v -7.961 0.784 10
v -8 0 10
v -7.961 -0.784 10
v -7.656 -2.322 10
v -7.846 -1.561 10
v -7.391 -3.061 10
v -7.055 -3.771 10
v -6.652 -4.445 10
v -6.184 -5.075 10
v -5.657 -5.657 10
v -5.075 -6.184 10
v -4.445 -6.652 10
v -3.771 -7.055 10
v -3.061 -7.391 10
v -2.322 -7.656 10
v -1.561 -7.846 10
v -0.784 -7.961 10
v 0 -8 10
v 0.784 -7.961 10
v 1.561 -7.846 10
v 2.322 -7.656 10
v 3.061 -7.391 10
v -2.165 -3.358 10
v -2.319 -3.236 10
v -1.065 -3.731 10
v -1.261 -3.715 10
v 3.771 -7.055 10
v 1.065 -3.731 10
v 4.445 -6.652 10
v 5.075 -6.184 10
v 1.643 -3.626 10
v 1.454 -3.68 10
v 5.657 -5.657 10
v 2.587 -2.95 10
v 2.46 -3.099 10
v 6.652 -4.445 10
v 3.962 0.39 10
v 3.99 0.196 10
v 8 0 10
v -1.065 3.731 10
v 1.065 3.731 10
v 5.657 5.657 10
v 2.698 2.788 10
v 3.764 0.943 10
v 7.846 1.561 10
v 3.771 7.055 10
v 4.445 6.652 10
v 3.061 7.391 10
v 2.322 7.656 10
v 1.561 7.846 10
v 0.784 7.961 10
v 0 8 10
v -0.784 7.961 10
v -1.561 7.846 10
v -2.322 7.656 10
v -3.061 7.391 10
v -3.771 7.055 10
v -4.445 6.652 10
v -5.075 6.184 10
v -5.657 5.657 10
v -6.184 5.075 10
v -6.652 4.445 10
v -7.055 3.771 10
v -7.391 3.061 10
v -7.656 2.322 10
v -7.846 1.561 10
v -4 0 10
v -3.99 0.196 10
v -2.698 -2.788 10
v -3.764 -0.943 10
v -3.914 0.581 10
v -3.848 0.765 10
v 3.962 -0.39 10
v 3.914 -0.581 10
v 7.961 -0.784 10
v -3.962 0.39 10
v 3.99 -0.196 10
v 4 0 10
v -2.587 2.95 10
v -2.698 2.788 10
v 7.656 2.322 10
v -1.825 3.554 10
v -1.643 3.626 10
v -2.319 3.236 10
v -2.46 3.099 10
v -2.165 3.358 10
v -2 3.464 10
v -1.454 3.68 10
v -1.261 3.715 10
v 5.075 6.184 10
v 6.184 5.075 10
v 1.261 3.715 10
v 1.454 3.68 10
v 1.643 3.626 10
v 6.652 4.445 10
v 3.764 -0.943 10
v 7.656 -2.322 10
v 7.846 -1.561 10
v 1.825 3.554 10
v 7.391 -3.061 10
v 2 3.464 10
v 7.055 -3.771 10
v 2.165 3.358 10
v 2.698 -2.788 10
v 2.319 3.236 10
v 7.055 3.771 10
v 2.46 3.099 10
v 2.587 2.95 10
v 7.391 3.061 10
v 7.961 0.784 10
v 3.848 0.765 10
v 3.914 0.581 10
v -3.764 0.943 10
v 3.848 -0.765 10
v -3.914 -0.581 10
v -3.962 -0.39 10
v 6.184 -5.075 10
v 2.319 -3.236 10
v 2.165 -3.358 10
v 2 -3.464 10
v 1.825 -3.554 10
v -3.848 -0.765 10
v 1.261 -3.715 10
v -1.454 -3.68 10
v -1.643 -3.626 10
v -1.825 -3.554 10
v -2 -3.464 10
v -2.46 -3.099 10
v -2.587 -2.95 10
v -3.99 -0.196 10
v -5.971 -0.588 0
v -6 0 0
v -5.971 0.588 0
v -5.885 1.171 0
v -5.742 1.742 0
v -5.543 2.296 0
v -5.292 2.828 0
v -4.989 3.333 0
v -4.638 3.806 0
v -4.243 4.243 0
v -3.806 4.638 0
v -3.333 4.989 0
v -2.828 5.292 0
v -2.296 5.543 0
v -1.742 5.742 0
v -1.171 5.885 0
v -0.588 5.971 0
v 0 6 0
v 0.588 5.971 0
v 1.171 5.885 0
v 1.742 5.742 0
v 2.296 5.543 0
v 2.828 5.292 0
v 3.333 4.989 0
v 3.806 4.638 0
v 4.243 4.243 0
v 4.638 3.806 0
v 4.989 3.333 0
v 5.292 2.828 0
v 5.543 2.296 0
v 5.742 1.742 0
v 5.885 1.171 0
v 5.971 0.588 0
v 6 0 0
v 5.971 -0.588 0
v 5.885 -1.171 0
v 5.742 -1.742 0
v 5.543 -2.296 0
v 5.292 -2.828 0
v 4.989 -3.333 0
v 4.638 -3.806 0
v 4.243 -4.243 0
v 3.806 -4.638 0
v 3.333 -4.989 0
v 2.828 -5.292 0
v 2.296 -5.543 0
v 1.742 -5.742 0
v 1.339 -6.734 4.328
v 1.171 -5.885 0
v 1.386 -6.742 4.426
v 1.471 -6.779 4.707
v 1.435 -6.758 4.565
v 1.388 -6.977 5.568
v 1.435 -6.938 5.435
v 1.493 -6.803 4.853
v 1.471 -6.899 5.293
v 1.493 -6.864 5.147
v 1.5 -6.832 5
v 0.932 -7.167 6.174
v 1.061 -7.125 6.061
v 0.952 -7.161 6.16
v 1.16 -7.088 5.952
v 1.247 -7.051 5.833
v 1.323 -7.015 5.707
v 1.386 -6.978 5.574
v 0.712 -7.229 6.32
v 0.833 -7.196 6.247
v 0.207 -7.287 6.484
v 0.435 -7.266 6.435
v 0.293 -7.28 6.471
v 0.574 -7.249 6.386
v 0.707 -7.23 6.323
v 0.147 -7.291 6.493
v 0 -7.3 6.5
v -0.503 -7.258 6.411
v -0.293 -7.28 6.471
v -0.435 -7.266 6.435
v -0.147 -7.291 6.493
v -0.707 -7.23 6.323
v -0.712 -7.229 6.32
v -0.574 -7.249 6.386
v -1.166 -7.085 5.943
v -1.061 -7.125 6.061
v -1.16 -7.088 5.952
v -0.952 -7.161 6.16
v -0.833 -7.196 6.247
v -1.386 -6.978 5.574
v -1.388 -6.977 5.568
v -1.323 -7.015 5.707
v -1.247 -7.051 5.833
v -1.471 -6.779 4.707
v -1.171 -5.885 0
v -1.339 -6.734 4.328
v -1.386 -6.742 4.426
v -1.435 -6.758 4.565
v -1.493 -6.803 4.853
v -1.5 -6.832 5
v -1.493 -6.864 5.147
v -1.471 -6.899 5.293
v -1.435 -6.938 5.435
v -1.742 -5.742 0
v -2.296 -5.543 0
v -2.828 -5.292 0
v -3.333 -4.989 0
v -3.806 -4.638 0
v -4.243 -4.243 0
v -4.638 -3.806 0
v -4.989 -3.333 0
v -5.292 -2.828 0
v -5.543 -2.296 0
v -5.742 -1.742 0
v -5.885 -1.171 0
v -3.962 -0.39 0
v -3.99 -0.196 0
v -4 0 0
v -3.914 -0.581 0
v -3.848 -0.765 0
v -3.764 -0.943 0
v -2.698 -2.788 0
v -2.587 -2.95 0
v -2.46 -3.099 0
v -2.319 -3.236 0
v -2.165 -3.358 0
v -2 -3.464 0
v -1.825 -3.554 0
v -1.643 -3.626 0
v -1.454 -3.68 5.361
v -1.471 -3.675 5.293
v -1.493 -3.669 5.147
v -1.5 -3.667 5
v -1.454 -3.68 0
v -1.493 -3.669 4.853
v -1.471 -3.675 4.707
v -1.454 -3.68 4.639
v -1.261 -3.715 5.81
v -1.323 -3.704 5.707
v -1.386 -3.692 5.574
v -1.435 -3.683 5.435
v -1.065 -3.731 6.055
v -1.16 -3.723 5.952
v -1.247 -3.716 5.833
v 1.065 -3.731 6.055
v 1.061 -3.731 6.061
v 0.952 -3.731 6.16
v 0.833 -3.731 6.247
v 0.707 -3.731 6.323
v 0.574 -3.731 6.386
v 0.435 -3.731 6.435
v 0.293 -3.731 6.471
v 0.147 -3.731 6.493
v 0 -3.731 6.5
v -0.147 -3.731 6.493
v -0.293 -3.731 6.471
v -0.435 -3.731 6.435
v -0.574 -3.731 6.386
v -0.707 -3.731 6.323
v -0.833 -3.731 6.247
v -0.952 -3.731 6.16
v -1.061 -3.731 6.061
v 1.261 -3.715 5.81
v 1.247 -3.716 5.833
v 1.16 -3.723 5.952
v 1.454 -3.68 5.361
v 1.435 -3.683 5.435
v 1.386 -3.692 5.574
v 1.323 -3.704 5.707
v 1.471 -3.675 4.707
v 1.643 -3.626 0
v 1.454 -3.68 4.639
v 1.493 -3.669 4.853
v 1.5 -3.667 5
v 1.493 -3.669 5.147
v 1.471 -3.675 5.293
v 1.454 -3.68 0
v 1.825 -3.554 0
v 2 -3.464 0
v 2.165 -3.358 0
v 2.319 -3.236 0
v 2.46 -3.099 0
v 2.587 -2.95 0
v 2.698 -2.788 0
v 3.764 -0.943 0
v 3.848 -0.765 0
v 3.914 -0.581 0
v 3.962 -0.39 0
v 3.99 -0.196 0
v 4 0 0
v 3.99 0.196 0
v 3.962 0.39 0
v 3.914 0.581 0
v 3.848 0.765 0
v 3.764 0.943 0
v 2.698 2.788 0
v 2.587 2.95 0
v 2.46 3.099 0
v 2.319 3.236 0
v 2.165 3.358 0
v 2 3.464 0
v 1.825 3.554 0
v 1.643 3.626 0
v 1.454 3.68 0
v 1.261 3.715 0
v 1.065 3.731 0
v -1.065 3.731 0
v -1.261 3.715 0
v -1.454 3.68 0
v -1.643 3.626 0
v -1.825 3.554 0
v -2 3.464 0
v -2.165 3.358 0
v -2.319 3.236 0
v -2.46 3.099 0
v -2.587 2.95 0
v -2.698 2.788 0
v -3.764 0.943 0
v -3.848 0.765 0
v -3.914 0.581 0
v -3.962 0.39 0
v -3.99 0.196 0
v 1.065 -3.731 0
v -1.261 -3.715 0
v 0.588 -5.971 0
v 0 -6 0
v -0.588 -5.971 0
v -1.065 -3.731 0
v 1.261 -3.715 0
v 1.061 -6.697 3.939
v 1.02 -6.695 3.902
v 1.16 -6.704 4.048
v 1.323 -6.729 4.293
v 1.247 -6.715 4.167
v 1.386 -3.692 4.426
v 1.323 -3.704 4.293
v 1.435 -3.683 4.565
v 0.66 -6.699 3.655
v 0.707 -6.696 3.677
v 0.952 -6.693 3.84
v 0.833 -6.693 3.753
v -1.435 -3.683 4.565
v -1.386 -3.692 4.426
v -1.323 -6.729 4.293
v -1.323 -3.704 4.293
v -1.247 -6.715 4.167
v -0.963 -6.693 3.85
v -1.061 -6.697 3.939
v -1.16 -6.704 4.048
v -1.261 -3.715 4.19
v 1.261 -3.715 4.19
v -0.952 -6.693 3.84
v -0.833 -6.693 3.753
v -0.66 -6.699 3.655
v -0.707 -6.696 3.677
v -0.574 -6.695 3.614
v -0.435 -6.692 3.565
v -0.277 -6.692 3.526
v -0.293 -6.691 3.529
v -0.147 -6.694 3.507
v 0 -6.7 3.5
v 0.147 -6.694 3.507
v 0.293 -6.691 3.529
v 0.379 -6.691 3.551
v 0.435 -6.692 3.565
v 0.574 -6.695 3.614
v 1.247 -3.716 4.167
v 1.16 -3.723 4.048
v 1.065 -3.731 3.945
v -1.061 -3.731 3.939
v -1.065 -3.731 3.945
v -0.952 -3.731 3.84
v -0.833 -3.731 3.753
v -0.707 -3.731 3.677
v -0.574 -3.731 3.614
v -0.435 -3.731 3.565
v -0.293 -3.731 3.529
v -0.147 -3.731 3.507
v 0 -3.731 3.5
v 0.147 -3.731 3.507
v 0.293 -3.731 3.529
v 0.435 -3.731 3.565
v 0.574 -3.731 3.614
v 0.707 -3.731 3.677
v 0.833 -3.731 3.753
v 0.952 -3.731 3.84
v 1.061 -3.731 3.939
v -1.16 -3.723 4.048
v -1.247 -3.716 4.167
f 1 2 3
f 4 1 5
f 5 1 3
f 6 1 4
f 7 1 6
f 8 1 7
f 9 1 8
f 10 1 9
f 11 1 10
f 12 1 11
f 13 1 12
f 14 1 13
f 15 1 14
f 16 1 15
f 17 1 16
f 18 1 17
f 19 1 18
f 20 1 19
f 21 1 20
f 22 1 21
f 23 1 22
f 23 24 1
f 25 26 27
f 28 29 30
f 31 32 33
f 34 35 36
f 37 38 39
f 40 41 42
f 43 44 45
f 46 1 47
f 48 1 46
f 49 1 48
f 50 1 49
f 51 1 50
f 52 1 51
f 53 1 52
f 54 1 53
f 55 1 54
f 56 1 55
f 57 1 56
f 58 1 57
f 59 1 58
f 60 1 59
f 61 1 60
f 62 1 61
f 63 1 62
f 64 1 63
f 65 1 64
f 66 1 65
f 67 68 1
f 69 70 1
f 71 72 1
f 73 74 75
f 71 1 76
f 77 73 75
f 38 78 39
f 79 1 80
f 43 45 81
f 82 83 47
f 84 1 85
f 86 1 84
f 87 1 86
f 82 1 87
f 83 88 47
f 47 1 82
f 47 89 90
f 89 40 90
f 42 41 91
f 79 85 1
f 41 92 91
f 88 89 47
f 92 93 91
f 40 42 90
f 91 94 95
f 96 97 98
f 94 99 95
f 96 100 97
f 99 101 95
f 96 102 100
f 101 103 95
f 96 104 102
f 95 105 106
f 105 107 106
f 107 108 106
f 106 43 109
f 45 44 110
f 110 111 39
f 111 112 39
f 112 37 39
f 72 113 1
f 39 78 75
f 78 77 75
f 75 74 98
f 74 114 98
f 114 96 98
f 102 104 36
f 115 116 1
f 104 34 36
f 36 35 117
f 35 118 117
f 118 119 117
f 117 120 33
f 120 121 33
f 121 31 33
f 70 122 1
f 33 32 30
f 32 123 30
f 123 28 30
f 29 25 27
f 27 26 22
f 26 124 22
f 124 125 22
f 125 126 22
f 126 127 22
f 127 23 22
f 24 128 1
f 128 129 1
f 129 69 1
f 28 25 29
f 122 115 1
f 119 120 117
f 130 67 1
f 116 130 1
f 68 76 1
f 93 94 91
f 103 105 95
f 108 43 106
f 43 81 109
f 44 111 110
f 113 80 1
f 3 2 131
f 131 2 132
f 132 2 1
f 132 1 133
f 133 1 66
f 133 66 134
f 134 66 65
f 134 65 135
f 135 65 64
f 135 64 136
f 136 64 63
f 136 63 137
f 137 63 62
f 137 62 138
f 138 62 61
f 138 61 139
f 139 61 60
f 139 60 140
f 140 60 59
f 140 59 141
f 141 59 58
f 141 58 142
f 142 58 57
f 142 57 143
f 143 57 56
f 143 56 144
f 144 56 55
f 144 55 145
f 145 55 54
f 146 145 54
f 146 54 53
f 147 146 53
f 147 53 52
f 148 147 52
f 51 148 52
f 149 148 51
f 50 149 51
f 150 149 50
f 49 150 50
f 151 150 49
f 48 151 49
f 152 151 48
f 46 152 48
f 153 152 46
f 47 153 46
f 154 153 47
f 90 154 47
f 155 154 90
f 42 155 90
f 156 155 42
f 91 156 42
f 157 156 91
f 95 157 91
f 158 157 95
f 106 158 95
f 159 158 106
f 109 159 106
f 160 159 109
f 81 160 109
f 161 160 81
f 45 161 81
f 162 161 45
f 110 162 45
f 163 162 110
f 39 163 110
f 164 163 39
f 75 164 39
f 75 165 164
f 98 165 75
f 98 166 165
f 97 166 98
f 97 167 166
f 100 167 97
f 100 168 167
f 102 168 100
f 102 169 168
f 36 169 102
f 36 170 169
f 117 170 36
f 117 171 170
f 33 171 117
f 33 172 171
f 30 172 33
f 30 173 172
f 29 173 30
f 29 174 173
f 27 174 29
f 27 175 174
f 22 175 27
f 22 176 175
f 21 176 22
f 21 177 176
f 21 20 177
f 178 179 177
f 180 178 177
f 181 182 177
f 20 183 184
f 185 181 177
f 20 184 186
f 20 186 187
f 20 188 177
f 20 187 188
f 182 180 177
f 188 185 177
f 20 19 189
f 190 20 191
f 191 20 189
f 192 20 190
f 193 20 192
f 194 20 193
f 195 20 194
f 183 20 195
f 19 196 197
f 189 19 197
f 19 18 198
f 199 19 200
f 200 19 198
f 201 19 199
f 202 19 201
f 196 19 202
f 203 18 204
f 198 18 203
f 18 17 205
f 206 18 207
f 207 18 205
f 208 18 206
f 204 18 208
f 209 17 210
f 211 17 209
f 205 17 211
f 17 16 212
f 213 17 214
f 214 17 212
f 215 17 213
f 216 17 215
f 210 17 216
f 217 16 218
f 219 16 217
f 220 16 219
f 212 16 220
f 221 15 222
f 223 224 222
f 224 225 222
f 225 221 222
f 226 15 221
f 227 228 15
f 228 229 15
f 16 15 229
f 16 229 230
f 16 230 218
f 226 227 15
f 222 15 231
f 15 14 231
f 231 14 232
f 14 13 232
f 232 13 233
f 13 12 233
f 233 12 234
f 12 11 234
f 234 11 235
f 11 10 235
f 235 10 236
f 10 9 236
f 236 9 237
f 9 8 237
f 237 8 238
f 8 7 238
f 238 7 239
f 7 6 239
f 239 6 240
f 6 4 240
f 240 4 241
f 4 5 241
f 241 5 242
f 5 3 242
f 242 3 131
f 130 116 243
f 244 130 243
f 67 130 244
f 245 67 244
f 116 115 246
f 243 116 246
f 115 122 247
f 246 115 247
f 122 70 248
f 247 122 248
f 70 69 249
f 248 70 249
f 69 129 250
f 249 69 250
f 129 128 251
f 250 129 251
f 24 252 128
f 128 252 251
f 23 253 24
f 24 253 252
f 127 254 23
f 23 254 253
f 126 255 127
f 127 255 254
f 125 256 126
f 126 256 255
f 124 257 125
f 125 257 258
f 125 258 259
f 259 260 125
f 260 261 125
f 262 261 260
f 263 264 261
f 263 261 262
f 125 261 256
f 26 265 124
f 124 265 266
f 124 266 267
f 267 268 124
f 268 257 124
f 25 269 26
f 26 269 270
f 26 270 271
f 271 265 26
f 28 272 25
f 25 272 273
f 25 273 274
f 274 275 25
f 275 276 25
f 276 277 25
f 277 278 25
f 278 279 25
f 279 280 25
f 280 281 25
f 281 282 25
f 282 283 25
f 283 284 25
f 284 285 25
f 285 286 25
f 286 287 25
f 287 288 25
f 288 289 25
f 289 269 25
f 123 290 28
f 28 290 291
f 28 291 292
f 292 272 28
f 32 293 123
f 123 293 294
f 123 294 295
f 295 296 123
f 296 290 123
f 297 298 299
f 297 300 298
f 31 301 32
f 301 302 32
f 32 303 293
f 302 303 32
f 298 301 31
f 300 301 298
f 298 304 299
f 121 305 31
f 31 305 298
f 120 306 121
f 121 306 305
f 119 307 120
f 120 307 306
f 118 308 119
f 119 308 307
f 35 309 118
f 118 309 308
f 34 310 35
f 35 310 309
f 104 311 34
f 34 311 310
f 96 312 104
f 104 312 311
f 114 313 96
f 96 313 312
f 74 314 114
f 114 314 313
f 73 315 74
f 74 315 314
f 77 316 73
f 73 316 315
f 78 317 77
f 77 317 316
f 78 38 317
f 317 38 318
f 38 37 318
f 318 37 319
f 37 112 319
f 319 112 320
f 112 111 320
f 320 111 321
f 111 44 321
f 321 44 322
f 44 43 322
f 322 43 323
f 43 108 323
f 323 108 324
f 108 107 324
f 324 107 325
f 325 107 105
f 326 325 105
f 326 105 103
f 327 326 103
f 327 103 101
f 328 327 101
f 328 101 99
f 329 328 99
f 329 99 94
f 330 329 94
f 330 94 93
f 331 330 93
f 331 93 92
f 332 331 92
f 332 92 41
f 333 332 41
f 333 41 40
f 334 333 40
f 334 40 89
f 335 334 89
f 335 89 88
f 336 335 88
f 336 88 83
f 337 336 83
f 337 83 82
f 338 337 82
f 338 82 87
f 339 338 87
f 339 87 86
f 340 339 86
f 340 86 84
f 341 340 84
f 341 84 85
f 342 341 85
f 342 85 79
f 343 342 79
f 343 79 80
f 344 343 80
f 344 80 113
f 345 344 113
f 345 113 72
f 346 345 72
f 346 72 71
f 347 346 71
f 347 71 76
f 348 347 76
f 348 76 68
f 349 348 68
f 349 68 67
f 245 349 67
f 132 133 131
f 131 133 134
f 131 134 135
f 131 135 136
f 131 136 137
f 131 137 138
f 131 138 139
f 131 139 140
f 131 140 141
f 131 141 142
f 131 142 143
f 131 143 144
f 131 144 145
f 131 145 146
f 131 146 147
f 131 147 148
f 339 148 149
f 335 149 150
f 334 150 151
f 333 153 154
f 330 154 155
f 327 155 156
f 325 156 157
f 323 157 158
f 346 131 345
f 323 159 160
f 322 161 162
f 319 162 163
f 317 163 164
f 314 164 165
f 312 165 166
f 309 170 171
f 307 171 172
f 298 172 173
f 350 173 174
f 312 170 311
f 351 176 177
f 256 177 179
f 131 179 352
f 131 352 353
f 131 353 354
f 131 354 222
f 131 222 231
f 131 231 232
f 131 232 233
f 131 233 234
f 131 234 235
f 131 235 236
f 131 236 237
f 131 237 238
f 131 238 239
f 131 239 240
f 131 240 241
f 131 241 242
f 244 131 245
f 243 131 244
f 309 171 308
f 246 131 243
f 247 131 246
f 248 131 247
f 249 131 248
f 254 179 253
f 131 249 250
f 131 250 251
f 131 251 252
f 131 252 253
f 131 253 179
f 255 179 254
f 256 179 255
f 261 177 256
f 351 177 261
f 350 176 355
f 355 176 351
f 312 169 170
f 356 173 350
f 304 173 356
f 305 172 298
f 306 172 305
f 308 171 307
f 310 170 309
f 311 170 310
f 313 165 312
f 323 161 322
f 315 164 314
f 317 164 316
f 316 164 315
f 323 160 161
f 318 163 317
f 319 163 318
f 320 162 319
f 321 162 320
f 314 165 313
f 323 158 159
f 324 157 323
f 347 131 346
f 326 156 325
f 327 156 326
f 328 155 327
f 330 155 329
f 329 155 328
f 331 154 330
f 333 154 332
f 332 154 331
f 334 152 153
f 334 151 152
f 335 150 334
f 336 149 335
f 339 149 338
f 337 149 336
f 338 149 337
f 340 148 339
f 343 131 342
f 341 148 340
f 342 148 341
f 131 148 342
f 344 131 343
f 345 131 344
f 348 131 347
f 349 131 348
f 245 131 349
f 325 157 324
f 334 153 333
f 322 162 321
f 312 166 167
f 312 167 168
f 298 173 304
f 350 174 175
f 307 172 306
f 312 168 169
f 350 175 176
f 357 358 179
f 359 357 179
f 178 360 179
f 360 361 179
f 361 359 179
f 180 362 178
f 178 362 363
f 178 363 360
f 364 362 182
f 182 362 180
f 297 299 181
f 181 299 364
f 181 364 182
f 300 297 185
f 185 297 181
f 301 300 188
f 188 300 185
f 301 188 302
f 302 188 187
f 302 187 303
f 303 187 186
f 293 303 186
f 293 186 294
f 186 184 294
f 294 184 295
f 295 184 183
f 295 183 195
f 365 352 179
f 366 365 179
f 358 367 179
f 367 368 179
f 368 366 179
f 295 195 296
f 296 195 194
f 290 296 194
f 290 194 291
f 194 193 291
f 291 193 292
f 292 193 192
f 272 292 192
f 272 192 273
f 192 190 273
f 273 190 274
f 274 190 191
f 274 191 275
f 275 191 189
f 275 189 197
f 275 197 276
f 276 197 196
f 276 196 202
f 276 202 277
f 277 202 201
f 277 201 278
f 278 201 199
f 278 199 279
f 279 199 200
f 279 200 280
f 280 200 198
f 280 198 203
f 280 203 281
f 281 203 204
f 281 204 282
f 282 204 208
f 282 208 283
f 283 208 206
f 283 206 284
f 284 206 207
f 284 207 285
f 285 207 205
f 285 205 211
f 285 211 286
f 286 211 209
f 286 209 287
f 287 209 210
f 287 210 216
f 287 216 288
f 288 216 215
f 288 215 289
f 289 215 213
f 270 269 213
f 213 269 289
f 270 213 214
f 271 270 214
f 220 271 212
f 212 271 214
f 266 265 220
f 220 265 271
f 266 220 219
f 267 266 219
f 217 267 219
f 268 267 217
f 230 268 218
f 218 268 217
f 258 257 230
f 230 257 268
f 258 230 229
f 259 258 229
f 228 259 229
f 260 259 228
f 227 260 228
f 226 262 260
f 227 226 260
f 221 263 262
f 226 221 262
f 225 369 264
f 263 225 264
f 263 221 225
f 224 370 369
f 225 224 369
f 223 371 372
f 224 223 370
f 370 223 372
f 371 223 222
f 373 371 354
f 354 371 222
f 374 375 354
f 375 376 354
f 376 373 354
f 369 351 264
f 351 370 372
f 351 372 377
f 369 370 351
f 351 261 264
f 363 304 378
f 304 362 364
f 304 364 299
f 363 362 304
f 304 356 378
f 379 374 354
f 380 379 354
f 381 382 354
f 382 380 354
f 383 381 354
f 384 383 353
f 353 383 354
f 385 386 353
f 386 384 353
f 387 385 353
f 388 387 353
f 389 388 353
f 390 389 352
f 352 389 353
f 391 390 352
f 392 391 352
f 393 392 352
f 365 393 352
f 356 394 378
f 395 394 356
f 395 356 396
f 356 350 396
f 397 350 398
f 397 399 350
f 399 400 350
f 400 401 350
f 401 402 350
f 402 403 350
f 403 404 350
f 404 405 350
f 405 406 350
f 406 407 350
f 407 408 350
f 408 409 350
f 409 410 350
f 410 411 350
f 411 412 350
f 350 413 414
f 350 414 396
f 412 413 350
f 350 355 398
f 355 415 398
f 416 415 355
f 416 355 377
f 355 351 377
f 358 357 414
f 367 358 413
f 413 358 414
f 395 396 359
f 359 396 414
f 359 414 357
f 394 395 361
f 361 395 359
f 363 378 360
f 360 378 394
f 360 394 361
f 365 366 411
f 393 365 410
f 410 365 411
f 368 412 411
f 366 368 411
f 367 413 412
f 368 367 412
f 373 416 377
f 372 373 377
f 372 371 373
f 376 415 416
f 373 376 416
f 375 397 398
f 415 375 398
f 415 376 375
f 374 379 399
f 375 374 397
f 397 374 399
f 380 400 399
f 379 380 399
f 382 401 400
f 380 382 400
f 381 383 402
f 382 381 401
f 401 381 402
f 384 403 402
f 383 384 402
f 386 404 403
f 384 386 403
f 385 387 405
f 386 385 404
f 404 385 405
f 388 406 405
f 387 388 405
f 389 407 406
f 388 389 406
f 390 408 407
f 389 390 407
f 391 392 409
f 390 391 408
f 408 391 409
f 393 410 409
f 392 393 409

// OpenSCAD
$fn = 64;

difference(){

cylinder(r1=6,r2=8,h=10);
translate([0,0,-1])phex(8,2,12);
translate([0,0,5]) rotate([90,0,0])cylinder(r=1.5,h=10);
}


module phex(wid,rad,height){
hull(){
translate([wid/2-rad,0,0])cylinder(r=rad,h=height);
rotate([0,0,60])translate([wid/2-rad,0,0])cylinder(r=rad,h=height);
rotate([0,0,120])translate([wid/2-rad,0,0])cylinder(r=rad,h=height);
rotate([0,0,180])translate([wid/2-rad,0,0])cylinder(r=rad,h=height);
rotate([0,0,240])translate([wid/2-rad,0,0])cylinder(r=rad,h=height);
rotate([0,0,300])translate([wid/2-rad,0,0])cylinder(r=rad,h=height);

}
}

module fhex(wid,height){
hull(){
cube([wid/1.7,wid,height],center = true);
rotate([0,0,120])cube([wid/1.7,wid,height],center = true);
rotate([0,0,240])cube([wid/1.7,wid,height],center = true);
}
}
